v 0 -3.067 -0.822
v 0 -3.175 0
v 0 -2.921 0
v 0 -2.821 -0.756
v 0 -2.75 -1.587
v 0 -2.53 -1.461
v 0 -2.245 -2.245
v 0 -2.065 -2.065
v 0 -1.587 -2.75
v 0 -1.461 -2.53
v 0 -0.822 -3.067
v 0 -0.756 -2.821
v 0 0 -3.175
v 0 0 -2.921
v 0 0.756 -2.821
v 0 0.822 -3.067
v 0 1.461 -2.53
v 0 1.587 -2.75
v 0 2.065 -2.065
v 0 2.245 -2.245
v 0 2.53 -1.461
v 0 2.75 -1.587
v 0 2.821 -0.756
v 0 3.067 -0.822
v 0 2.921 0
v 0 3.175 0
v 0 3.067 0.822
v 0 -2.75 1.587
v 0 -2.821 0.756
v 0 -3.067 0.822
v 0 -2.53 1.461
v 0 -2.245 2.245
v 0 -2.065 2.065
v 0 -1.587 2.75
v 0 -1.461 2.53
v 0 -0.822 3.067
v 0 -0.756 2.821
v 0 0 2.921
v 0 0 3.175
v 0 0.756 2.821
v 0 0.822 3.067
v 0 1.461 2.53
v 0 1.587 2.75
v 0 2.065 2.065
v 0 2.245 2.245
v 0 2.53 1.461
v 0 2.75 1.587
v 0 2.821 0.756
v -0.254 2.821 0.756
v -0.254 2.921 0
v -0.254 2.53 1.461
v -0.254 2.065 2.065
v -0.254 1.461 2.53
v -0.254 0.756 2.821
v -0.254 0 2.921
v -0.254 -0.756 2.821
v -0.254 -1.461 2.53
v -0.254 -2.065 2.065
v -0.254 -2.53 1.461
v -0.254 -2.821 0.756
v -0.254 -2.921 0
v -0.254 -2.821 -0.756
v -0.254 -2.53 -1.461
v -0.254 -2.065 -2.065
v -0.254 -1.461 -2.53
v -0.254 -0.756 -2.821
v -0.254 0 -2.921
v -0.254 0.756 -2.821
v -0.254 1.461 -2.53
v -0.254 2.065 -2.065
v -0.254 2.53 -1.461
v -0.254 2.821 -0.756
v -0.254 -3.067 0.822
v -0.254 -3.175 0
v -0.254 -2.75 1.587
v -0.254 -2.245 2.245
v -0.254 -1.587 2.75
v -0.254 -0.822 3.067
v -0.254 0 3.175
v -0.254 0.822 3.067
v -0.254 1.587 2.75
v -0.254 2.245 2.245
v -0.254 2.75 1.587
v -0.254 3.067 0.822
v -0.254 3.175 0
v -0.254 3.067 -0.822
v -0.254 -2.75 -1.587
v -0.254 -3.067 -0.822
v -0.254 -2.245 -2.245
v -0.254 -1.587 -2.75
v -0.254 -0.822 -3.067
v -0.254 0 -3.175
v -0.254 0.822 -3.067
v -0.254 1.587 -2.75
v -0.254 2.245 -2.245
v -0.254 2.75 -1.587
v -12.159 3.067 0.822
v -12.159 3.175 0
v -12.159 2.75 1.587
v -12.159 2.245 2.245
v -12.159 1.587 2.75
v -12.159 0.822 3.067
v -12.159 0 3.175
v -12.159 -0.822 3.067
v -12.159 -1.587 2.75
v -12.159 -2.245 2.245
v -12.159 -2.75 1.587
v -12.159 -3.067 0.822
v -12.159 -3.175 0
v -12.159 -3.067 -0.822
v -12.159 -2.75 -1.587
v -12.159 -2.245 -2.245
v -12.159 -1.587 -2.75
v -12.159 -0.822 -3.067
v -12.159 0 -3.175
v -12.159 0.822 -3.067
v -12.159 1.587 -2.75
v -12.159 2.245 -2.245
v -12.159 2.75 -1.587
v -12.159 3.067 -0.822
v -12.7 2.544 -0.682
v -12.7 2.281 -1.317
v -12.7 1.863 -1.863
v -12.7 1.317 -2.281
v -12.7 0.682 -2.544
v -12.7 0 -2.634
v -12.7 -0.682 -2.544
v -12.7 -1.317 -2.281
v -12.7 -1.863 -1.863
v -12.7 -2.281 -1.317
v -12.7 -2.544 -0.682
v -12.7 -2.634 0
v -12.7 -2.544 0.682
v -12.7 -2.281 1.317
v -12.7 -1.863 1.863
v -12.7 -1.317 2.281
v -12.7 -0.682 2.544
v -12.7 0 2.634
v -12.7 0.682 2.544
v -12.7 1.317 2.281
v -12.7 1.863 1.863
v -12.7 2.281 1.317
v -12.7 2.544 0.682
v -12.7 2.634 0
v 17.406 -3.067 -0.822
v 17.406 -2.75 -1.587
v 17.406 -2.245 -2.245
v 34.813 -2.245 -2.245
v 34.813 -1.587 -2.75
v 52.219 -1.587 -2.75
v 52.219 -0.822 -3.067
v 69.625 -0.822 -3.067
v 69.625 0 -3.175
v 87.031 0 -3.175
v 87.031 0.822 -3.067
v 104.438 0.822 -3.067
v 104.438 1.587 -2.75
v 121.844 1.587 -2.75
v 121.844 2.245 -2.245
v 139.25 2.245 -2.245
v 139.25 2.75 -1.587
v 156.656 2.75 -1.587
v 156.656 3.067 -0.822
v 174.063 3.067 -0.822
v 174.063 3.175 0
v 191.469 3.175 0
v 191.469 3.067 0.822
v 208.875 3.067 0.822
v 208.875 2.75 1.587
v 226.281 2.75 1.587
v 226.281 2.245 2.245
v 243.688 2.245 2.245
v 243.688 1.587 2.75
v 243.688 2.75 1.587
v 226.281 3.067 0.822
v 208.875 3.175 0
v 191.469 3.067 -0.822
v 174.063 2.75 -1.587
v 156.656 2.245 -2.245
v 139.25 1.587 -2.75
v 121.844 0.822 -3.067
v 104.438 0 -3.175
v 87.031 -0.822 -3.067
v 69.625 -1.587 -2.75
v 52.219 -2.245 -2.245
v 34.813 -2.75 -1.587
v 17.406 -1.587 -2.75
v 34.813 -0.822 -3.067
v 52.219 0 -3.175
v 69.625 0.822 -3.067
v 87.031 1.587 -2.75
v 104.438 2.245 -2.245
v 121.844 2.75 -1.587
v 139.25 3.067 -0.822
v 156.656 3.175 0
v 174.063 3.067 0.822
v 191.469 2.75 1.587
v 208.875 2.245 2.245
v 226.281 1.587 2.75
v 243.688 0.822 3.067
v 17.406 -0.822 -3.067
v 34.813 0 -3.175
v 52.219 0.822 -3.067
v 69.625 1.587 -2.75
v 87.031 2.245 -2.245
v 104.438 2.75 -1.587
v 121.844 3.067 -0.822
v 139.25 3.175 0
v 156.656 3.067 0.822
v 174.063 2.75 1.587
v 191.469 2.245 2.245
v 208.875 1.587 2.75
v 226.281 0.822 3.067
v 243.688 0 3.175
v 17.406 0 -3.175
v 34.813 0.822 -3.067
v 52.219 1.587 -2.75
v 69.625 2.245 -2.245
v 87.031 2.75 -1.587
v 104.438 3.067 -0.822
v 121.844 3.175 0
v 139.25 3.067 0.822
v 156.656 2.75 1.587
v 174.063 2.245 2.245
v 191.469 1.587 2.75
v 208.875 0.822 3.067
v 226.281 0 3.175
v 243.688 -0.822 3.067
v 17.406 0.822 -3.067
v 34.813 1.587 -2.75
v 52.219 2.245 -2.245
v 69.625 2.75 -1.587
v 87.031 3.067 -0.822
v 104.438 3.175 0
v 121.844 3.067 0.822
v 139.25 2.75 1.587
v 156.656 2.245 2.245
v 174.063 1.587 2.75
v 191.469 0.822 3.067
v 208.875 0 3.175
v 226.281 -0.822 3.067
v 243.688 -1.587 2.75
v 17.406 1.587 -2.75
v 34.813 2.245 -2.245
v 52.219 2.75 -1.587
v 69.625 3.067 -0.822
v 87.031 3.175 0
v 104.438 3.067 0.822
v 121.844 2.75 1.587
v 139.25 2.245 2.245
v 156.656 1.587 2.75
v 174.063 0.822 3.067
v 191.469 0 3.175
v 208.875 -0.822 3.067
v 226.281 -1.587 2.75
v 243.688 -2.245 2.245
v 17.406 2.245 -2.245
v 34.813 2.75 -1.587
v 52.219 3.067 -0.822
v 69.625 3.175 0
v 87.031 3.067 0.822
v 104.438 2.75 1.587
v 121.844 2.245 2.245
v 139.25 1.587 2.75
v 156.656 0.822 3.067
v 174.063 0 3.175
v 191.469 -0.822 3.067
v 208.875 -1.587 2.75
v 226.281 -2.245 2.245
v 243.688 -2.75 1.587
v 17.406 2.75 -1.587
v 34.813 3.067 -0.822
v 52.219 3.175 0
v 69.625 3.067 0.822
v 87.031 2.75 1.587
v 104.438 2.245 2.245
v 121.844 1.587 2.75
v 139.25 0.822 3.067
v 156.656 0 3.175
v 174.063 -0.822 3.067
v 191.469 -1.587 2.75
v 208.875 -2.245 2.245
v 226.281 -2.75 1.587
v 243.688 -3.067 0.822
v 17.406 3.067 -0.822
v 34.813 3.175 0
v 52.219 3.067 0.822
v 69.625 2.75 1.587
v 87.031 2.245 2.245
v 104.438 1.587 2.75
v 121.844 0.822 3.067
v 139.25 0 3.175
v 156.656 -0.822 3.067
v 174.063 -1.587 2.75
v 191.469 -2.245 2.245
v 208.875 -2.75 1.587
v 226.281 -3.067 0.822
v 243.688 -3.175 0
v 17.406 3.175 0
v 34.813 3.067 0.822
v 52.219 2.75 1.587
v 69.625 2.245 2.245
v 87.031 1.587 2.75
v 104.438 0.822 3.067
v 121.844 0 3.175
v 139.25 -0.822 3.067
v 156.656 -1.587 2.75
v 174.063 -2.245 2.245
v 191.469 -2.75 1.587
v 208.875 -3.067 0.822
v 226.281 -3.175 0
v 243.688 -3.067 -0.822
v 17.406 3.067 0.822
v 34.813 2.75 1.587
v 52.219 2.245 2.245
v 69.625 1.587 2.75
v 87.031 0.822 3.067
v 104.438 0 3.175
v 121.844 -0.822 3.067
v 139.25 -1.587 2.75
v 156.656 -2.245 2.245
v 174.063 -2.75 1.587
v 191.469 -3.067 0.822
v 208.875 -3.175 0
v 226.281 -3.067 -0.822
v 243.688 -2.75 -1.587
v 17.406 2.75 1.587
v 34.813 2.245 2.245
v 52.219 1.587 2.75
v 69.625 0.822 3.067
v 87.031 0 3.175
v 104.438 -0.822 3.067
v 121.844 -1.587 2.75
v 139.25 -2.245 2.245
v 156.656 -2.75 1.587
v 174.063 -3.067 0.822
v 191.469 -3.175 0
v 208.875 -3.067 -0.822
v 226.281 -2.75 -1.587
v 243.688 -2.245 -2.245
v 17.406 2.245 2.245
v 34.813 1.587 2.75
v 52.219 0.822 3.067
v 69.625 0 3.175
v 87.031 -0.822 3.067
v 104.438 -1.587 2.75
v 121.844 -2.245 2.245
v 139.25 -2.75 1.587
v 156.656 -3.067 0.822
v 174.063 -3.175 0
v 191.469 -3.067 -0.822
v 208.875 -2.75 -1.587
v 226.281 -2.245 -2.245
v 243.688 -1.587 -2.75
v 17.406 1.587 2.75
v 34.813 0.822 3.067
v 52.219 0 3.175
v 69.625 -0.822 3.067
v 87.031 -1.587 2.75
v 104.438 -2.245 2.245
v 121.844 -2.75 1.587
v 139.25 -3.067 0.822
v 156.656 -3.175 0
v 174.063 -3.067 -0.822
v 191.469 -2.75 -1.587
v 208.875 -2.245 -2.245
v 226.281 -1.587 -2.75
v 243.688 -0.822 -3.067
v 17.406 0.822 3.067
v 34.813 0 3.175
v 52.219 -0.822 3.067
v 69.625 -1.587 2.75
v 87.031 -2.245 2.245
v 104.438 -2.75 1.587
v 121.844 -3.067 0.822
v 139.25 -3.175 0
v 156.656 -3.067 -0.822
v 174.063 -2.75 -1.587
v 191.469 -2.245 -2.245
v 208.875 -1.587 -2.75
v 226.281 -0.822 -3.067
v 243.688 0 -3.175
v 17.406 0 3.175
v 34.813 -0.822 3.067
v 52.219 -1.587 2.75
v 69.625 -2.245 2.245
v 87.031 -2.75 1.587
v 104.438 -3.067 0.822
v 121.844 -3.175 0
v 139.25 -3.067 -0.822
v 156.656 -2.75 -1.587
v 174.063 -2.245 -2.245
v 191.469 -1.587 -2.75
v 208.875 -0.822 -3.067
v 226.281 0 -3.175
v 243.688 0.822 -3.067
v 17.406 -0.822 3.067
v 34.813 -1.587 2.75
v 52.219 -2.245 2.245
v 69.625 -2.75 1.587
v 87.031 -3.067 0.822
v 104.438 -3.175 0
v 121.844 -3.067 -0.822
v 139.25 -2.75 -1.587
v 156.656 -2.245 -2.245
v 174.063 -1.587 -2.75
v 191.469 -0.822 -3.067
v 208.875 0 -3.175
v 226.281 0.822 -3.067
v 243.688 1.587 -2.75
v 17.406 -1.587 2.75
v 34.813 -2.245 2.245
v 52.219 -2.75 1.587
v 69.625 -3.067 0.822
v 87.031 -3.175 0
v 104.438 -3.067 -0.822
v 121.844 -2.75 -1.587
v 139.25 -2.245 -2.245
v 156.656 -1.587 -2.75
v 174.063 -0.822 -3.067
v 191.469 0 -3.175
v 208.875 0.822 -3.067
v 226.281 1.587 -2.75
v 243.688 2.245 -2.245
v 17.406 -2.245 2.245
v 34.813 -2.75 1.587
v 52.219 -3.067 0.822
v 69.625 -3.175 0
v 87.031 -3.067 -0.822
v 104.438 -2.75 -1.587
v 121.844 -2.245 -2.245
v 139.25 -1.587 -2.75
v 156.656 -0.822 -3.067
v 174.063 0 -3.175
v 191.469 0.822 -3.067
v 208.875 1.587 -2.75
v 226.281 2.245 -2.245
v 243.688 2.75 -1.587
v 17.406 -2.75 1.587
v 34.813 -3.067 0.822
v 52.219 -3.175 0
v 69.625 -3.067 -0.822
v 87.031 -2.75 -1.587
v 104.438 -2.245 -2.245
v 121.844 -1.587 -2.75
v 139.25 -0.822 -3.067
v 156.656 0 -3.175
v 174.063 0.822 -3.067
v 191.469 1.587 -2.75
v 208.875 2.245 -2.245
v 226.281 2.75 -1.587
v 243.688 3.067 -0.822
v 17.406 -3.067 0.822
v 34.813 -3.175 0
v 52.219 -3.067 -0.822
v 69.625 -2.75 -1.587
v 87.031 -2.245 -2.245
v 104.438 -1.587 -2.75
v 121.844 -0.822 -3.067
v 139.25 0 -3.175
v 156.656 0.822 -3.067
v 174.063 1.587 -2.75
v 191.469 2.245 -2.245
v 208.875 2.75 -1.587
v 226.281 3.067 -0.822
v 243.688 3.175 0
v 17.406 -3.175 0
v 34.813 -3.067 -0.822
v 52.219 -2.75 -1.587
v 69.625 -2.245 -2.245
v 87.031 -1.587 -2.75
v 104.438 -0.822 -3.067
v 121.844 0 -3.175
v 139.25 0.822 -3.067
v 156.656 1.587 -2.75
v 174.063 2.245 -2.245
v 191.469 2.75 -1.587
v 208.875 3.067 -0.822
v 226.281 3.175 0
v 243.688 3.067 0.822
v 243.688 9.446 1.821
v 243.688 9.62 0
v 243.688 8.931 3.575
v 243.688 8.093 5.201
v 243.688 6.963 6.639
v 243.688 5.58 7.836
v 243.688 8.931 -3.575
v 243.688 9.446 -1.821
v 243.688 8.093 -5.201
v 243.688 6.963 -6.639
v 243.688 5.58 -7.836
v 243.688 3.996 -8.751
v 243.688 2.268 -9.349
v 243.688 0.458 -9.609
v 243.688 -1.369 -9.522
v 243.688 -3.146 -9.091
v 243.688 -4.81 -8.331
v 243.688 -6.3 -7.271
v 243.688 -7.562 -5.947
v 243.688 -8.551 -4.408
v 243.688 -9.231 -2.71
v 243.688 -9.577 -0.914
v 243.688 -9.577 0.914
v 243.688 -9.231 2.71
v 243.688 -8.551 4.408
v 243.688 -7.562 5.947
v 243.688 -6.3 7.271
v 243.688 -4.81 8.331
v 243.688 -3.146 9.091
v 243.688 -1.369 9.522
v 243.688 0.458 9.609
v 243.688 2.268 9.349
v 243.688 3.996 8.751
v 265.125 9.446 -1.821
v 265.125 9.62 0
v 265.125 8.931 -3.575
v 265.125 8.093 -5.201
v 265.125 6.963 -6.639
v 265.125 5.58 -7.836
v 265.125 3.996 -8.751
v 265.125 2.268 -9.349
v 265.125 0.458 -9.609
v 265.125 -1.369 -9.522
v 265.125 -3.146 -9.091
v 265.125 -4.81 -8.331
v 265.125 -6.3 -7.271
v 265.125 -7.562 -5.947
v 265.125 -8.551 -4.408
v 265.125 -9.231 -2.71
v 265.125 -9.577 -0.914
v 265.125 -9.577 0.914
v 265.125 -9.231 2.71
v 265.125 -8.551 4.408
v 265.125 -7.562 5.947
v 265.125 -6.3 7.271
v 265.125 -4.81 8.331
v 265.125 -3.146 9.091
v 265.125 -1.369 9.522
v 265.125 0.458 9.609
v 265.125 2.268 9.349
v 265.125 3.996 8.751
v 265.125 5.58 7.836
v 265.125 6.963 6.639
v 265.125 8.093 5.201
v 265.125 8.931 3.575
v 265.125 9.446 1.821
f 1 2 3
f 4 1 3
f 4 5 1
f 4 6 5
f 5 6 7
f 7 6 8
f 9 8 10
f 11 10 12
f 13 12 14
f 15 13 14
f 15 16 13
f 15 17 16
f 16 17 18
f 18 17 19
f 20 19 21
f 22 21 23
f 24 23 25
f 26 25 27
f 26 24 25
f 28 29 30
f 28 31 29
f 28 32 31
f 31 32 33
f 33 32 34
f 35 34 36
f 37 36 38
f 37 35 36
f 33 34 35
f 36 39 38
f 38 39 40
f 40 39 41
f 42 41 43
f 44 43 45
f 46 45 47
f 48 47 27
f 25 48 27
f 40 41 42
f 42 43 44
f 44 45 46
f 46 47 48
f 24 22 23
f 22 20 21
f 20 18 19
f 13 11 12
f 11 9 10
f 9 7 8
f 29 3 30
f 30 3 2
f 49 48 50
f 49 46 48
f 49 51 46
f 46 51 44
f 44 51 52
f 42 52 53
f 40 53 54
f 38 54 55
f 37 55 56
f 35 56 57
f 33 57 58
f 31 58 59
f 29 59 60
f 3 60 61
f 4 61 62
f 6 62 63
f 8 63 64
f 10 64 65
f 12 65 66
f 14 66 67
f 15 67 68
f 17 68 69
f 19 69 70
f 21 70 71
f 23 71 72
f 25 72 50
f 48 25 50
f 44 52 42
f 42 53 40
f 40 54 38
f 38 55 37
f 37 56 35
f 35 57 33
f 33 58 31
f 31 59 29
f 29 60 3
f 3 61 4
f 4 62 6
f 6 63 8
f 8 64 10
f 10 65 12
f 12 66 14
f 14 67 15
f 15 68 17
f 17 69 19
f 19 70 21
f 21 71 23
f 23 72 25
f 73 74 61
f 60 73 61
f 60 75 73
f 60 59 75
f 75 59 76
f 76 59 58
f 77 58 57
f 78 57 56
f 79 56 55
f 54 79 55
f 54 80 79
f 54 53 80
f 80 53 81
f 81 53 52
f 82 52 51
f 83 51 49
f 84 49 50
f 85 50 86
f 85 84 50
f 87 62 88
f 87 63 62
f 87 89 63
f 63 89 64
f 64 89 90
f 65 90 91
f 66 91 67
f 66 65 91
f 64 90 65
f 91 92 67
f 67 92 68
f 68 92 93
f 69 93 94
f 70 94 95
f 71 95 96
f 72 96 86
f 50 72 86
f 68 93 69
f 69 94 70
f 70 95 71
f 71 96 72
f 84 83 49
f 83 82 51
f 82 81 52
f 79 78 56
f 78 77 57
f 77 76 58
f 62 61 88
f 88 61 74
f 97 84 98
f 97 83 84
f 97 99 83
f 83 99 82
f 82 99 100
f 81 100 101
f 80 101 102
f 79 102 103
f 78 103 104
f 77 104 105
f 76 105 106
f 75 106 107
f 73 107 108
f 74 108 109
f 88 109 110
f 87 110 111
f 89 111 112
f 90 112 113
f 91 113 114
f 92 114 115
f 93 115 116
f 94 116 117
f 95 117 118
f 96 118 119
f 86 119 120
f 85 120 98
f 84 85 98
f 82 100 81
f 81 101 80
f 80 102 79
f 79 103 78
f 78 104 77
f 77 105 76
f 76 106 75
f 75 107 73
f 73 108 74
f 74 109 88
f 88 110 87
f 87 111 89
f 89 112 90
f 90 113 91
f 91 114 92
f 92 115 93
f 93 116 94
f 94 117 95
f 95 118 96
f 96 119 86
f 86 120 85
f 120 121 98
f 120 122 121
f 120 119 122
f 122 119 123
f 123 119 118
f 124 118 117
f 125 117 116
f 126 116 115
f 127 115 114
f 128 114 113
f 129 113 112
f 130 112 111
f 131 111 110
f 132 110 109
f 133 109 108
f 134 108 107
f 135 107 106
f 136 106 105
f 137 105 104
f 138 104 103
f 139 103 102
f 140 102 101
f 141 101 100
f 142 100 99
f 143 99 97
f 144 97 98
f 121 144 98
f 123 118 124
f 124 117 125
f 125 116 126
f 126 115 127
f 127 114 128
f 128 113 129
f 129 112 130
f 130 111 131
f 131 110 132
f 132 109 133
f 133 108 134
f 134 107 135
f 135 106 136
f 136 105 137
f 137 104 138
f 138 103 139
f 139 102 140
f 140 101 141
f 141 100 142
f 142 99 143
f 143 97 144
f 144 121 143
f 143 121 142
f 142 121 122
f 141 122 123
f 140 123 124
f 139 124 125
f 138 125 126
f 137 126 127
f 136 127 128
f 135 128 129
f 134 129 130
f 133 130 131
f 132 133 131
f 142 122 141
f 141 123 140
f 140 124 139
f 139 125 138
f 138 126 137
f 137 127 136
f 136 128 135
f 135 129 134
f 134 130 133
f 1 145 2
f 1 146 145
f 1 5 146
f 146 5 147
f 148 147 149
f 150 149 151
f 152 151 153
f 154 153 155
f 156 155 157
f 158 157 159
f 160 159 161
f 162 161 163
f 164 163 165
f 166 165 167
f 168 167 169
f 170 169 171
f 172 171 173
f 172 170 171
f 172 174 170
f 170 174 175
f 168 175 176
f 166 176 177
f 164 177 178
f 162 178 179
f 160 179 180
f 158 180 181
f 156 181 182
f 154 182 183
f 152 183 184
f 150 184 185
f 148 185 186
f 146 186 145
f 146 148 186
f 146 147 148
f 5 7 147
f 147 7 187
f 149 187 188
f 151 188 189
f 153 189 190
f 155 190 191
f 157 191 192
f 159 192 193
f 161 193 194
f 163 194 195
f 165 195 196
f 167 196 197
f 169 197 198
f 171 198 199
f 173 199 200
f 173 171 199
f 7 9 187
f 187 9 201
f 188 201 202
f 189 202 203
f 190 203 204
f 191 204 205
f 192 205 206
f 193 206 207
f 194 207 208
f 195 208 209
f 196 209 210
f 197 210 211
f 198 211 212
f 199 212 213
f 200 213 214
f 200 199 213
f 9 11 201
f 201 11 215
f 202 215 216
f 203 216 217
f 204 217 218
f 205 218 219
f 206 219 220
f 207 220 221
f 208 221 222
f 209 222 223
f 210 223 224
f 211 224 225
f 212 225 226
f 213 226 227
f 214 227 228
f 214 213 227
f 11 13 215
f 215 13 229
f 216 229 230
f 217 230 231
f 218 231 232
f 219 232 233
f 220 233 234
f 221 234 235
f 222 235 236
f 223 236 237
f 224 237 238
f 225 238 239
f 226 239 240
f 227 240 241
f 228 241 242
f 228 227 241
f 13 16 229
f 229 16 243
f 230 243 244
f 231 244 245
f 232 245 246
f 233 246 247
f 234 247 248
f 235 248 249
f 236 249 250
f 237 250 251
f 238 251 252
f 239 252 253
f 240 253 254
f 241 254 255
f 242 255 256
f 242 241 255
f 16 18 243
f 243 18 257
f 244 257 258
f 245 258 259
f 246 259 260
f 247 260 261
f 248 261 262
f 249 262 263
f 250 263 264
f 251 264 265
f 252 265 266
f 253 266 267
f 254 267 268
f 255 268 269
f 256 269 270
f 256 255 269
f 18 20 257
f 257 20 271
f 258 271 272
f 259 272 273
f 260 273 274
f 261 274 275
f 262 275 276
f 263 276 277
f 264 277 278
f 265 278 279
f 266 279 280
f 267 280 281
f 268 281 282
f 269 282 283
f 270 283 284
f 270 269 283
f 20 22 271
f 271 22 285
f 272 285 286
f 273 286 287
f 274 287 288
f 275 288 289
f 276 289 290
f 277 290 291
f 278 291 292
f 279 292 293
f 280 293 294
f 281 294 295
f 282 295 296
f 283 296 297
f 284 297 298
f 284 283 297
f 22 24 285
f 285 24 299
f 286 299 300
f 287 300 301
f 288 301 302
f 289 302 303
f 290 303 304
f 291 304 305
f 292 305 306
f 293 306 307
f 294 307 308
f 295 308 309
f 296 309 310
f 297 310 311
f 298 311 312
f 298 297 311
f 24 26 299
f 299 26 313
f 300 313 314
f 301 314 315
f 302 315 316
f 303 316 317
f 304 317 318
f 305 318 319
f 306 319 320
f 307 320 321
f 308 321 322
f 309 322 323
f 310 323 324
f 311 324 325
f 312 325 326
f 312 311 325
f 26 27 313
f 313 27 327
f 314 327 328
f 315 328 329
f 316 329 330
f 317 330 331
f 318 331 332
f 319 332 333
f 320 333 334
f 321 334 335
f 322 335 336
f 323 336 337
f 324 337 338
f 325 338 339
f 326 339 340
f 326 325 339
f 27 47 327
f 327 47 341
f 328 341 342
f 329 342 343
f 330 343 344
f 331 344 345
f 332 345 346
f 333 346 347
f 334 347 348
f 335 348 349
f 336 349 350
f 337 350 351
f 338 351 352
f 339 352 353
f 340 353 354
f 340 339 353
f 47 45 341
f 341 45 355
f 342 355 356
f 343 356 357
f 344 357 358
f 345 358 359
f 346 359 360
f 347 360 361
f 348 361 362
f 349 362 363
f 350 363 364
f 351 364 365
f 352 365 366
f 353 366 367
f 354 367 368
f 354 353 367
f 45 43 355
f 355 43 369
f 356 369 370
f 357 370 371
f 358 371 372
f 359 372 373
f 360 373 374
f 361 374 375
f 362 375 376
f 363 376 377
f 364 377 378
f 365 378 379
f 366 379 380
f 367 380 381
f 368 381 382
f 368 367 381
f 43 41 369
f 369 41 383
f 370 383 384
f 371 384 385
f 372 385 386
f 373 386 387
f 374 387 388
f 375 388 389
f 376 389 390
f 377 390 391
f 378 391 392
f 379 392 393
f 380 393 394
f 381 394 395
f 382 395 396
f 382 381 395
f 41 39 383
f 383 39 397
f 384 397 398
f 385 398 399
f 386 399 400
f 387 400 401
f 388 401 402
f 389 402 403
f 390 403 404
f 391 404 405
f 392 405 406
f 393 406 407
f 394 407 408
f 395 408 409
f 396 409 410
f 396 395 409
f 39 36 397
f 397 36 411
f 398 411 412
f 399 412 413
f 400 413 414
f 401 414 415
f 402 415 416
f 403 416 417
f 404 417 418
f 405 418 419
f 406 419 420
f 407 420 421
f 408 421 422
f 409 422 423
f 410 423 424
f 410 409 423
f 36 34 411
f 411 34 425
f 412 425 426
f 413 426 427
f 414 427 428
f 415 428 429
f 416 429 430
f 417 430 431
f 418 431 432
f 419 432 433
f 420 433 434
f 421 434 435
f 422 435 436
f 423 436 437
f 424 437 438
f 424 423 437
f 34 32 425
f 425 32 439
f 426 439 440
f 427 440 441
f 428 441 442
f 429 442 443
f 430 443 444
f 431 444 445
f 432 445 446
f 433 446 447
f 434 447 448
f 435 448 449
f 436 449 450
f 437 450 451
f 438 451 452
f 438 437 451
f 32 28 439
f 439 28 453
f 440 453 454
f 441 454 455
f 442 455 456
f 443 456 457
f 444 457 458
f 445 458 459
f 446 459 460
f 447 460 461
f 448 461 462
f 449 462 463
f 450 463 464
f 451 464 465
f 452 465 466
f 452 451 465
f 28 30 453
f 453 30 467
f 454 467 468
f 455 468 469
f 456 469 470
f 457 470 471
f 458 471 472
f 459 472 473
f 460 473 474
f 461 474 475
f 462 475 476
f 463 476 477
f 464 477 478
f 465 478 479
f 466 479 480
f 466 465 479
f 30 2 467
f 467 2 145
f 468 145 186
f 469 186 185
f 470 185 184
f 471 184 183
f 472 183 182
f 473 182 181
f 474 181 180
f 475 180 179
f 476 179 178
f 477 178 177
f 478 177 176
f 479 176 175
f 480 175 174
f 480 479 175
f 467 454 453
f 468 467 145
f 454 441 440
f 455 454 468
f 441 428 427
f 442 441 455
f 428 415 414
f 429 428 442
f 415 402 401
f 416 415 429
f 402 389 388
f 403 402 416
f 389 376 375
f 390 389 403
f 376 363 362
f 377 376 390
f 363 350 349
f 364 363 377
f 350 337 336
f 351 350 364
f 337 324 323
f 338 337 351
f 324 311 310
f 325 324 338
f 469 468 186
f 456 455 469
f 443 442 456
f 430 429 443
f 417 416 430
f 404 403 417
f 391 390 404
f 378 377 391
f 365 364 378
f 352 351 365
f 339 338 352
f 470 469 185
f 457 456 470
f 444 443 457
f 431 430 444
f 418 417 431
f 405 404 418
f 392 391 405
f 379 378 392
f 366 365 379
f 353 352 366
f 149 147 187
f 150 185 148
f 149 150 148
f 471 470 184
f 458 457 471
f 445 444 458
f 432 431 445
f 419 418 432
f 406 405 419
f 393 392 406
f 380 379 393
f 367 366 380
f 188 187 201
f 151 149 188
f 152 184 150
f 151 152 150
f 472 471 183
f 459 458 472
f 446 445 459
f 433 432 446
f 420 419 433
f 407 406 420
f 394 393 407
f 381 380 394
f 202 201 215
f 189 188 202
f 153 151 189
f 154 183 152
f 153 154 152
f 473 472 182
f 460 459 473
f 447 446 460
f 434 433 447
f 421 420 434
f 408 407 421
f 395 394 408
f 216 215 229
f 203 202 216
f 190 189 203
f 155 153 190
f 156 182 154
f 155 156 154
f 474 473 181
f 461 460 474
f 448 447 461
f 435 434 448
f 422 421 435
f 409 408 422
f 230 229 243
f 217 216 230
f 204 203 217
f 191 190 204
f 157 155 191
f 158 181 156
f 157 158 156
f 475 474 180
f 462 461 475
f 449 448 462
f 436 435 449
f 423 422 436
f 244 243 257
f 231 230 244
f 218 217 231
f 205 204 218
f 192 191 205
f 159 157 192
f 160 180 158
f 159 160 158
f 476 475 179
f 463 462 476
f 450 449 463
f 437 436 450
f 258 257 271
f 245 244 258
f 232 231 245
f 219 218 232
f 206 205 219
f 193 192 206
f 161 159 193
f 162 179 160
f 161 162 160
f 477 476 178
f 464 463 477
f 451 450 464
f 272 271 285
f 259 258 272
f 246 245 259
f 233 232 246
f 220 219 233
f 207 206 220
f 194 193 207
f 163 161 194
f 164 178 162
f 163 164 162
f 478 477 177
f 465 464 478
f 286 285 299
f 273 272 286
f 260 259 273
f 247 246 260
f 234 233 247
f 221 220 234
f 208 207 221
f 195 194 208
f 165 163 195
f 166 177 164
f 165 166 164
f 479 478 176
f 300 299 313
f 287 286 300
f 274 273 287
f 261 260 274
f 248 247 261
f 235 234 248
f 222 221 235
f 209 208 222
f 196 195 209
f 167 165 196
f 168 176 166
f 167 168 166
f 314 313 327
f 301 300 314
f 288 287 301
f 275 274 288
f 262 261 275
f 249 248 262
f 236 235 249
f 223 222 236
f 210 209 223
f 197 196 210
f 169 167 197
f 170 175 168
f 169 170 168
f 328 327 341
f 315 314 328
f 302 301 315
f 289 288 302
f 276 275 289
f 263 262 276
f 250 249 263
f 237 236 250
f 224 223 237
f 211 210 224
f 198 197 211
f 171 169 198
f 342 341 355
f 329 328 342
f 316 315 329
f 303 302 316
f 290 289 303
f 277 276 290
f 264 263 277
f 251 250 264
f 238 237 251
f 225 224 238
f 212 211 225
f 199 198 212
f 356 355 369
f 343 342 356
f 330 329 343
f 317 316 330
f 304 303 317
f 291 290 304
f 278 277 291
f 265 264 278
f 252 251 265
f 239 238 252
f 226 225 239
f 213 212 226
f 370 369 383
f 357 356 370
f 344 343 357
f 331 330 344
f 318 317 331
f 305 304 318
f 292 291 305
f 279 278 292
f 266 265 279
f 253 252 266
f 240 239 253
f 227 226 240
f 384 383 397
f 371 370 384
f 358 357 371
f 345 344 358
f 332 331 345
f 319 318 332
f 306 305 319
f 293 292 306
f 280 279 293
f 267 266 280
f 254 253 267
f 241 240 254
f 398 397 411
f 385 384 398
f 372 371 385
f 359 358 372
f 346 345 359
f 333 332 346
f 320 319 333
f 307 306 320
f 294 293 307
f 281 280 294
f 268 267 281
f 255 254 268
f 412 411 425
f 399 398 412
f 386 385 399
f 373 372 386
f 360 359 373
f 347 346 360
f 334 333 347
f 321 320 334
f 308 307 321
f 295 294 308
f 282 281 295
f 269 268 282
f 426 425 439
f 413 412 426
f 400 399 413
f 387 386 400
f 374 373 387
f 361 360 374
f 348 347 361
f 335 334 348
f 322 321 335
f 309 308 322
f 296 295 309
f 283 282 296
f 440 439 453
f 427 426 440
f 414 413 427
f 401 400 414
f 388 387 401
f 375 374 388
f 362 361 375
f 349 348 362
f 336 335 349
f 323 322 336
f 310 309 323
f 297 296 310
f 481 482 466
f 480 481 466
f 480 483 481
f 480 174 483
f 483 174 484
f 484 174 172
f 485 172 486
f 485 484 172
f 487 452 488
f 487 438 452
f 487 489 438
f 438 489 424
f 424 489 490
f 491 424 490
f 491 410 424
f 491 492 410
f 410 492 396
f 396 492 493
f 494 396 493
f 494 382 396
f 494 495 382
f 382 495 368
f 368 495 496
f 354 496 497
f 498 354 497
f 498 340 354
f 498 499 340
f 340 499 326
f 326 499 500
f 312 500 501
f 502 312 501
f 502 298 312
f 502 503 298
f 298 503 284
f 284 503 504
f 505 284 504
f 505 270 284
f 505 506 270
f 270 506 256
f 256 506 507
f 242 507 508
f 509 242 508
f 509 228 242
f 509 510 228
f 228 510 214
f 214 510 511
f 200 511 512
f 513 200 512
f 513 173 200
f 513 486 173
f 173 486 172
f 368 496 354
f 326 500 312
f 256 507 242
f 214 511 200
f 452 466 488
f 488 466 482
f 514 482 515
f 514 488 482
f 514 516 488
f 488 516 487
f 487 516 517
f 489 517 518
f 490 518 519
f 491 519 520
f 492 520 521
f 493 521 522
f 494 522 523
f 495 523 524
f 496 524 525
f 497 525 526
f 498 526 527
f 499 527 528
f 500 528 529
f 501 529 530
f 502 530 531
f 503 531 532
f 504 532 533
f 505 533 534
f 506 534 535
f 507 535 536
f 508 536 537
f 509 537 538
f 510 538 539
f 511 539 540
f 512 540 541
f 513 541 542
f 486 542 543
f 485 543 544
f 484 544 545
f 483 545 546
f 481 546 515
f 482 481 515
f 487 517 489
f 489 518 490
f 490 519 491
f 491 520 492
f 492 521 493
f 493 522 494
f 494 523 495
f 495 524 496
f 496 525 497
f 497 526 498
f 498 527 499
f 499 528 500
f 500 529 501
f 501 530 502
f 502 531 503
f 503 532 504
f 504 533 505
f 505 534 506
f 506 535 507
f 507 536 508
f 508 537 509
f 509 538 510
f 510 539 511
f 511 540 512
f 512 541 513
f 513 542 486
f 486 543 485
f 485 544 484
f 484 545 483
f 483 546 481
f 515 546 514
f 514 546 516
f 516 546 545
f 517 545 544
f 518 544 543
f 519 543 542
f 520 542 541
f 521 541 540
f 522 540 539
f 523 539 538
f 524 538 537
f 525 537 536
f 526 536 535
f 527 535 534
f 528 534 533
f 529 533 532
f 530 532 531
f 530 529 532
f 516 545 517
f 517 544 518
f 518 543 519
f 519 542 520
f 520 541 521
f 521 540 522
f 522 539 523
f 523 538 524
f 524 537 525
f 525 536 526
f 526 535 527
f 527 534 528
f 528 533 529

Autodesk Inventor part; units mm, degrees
sketch "Sketch_1" plane through (0, 0, 0) normal (0, 0, 1) x (1, 0, 0)
  line L0 (265.1252, 0) -> (0, 0)
  line L1 (0, 0) -> (0, 3.175)
  line L2 (0, 3.175) -> (243.6876, 3.175)
  line L3 (243.6876, 3.175) -> (243.6876, 9.6203)
  line L4 (243.6876, 9.6203) -> (265.1252, 9.6203)
  line L5 (265.1252, 9.6203) -> (265.1252, 0)
  line L6 (265.1252, 0) -> (0, 0)
revolve "Revolution1" add sketch "Sketch_1" angle 360 about axis through (265.1252, 0, 0) along (1, 0, 0)
sketch "Sketch_3" plane through (0, 0, 0) normal (0, 0, 1) x (1, 0, 0)
  line L0 (0, 0) -> (-12.7, 0)
  line L1 (-12.7, 0) -> (-12.7, 2.634)
  line L2 (-12.7, 2.634) -> (-12.159, 3.175)
  line L3 (-12.159, 3.175) -> (0, 3.175)
  line L4 (0, 3.175) -> (0, 0)
  line L5 (0, 0) -> (-12.7, 0)
revolve "Revolution2" add sketch "Sketch_3" angle 360 about axis through (0, 0, 0) along (1, 0, 0)
thread "Thread1" size "1/4-28 UNF" class "3A" standard "ANSI Unified Screw Threads" length 12.7 offset 243.6876
sketch "Sketch_30" plane through (0, 0, 0) normal (0, 0, 1) x (1, 0, 0)
  line L0 (0, 0) -> (-0.254, 0)
  line L1 (-0.254, 3.429) -> (-0.254, 2.921)
  line L2 (-0.254, 2.921) -> (0, 2.921)
  line L3 (0, 2.921) -> (0, 3.429)
  line L4 (0, 3.429) -> (-0.254, 3.429)
revolve "Revolution3" cut sketch "Sketch_30" angle 360 about axis through (0, 0, 0) along (1, 0, 0)
ref_plane "rod_cp_XY" through (0, 0, 0) normal (1, 0, 0) x (0, 0, -1)
ref_plane "rod_cp_YZ" through (0, 0, 0) normal (0, 0, -1) x (0, 1, 0)
ref_plane "rod_cp_ZX" through (0, 0, 0) normal (0, 1, 0) x (1, 0, 0)
ref_plane "to_rod_clevis_XY" through (-12.7, 0, 0) normal (1, 0, 0) x (0, 0, -1)
ref_plane "to_rod_clevis_YZ" through (-12.7, 0, 0) normal (0, 0, -1) x (0, 1, 0)
ref_plane "to_rod_clevis_ZX" through (-12.7, 0, 0) normal (0, 1, 0) x (1, 0, 0)
ref_plane "rl2_XY" through (0, 0, 0) normal (1, 0, 0) x (0, 0, -1)
ref_plane "rl2_YZ" through (0, 0, 0) normal (0, 0, -1) x (0, 1, 0)
ref_plane "rl2_ZX" through (0, 0, 0) normal (0, 1, 0) x (1, 0, 0)
ref_plane "rl1_XY" through (-12.7, 0, 0) normal (1, 0, 0) x (0, 0, -1)
ref_plane "rl1_YZ" through (-12.7, 0, 0) normal (0, 0, -1) x (0, 1, 0)
ref_plane "rl1_ZX" through (-12.7, 0, 0) normal (0, 1, 0) x (1, 0, 0)
ref_plane "thd1_XY" through (-12.7, 3.175, 0) normal (1, 0, 0) x (0, 0, -1)
ref_plane "thd1_YZ" through (-12.7, 3.175, 0) normal (0, 0, -1) x (0, 1, 0)
ref_plane "thd1_ZX" through (-12.7, 3.175, 0) normal (0, 1, 0) x (1, 0, 0)
ref_plane "thd2_XY" through (-12.7, -3.175, 0) normal (1, 0, 0) x (0, 0, -1)
ref_plane "thd2_YZ" through (-12.7, -3.175, 0) normal (0, 0, -1) x (0, 1, 0)
ref_plane "thd2_ZX" through (-12.7, -3.175, 0) normal (0, 1, 0) x (1, 0, 0)
ref_plane "dia1_XY" through (0, 3.175, 0) normal (1, 0, 0) x (0, 0, -1)
ref_plane "dia1_YZ" through (0, 3.175, 0) normal (0, 0, -1) x (0, 1, 0)
ref_plane "dia1_ZX" through (0, 3.175, 0) normal (0, 1, 0) x (1, 0, 0)
ref_plane "dia2_XY" through (0, -3.175, 0) normal (1, 0, 0) x (0, 0, -1)
ref_plane "dia2_YZ" through (0, -3.175, 0) normal (0, 0, -1) x (0, 1, 0)
ref_plane "dia2_ZX" through (0, -3.175, 0) normal (0, 1, 0) x (1, 0, 0)
ref_plane "hh1_XY" through (295.2496, 0, 0) normal (0, 0, 1) x (1, 0, 0)
ref_plane "hh1_YZ" through (295.2496, 0, 0) normal (1, 0, 0) x (0, 1, 0)
ref_plane "hh1_ZX" through (295.2496, 0, 0) normal (0, 1, 0) x (0, 0, 1)
ref_plane "hh2_XY" through (301.6504, 0, 0) normal (0, 0, 1) x (1, 0, 0)
ref_plane "hh2_YZ" through (301.6504, 0, 0) normal (1, 0, 0) x (0, 1, 0)
ref_plane "hh2_ZX" through (301.6504, 0, 0) normal (0, 1, 0) x (0, 0, 1)
ref_plane "dia12_XY" through (0, 0, 10.9537) normal (1, 0, 0) x (0, 0, -1)
ref_plane "dia12_YZ" through (0, 0, 10.9537) normal (0, 0, -1) x (0, 1, 0)
ref_plane "dia12_ZX" through (0, 0, 10.9537) normal (0, 1, 0) x (1, 0, 0)
ref_plane "dia22_XY" through (0, 0, -10.9537) normal (1, 0, 0) x (0, 0, -1)
ref_plane "dia22_YZ" through (0, 0, -10.9537) normal (0, 0, -1) x (0, 1, 0)
ref_plane "dia22_ZX" through (0, 0, -10.9537) normal (0, 1, 0) x (1, 0, 0)
properties part number "048-DXP0_rod"
